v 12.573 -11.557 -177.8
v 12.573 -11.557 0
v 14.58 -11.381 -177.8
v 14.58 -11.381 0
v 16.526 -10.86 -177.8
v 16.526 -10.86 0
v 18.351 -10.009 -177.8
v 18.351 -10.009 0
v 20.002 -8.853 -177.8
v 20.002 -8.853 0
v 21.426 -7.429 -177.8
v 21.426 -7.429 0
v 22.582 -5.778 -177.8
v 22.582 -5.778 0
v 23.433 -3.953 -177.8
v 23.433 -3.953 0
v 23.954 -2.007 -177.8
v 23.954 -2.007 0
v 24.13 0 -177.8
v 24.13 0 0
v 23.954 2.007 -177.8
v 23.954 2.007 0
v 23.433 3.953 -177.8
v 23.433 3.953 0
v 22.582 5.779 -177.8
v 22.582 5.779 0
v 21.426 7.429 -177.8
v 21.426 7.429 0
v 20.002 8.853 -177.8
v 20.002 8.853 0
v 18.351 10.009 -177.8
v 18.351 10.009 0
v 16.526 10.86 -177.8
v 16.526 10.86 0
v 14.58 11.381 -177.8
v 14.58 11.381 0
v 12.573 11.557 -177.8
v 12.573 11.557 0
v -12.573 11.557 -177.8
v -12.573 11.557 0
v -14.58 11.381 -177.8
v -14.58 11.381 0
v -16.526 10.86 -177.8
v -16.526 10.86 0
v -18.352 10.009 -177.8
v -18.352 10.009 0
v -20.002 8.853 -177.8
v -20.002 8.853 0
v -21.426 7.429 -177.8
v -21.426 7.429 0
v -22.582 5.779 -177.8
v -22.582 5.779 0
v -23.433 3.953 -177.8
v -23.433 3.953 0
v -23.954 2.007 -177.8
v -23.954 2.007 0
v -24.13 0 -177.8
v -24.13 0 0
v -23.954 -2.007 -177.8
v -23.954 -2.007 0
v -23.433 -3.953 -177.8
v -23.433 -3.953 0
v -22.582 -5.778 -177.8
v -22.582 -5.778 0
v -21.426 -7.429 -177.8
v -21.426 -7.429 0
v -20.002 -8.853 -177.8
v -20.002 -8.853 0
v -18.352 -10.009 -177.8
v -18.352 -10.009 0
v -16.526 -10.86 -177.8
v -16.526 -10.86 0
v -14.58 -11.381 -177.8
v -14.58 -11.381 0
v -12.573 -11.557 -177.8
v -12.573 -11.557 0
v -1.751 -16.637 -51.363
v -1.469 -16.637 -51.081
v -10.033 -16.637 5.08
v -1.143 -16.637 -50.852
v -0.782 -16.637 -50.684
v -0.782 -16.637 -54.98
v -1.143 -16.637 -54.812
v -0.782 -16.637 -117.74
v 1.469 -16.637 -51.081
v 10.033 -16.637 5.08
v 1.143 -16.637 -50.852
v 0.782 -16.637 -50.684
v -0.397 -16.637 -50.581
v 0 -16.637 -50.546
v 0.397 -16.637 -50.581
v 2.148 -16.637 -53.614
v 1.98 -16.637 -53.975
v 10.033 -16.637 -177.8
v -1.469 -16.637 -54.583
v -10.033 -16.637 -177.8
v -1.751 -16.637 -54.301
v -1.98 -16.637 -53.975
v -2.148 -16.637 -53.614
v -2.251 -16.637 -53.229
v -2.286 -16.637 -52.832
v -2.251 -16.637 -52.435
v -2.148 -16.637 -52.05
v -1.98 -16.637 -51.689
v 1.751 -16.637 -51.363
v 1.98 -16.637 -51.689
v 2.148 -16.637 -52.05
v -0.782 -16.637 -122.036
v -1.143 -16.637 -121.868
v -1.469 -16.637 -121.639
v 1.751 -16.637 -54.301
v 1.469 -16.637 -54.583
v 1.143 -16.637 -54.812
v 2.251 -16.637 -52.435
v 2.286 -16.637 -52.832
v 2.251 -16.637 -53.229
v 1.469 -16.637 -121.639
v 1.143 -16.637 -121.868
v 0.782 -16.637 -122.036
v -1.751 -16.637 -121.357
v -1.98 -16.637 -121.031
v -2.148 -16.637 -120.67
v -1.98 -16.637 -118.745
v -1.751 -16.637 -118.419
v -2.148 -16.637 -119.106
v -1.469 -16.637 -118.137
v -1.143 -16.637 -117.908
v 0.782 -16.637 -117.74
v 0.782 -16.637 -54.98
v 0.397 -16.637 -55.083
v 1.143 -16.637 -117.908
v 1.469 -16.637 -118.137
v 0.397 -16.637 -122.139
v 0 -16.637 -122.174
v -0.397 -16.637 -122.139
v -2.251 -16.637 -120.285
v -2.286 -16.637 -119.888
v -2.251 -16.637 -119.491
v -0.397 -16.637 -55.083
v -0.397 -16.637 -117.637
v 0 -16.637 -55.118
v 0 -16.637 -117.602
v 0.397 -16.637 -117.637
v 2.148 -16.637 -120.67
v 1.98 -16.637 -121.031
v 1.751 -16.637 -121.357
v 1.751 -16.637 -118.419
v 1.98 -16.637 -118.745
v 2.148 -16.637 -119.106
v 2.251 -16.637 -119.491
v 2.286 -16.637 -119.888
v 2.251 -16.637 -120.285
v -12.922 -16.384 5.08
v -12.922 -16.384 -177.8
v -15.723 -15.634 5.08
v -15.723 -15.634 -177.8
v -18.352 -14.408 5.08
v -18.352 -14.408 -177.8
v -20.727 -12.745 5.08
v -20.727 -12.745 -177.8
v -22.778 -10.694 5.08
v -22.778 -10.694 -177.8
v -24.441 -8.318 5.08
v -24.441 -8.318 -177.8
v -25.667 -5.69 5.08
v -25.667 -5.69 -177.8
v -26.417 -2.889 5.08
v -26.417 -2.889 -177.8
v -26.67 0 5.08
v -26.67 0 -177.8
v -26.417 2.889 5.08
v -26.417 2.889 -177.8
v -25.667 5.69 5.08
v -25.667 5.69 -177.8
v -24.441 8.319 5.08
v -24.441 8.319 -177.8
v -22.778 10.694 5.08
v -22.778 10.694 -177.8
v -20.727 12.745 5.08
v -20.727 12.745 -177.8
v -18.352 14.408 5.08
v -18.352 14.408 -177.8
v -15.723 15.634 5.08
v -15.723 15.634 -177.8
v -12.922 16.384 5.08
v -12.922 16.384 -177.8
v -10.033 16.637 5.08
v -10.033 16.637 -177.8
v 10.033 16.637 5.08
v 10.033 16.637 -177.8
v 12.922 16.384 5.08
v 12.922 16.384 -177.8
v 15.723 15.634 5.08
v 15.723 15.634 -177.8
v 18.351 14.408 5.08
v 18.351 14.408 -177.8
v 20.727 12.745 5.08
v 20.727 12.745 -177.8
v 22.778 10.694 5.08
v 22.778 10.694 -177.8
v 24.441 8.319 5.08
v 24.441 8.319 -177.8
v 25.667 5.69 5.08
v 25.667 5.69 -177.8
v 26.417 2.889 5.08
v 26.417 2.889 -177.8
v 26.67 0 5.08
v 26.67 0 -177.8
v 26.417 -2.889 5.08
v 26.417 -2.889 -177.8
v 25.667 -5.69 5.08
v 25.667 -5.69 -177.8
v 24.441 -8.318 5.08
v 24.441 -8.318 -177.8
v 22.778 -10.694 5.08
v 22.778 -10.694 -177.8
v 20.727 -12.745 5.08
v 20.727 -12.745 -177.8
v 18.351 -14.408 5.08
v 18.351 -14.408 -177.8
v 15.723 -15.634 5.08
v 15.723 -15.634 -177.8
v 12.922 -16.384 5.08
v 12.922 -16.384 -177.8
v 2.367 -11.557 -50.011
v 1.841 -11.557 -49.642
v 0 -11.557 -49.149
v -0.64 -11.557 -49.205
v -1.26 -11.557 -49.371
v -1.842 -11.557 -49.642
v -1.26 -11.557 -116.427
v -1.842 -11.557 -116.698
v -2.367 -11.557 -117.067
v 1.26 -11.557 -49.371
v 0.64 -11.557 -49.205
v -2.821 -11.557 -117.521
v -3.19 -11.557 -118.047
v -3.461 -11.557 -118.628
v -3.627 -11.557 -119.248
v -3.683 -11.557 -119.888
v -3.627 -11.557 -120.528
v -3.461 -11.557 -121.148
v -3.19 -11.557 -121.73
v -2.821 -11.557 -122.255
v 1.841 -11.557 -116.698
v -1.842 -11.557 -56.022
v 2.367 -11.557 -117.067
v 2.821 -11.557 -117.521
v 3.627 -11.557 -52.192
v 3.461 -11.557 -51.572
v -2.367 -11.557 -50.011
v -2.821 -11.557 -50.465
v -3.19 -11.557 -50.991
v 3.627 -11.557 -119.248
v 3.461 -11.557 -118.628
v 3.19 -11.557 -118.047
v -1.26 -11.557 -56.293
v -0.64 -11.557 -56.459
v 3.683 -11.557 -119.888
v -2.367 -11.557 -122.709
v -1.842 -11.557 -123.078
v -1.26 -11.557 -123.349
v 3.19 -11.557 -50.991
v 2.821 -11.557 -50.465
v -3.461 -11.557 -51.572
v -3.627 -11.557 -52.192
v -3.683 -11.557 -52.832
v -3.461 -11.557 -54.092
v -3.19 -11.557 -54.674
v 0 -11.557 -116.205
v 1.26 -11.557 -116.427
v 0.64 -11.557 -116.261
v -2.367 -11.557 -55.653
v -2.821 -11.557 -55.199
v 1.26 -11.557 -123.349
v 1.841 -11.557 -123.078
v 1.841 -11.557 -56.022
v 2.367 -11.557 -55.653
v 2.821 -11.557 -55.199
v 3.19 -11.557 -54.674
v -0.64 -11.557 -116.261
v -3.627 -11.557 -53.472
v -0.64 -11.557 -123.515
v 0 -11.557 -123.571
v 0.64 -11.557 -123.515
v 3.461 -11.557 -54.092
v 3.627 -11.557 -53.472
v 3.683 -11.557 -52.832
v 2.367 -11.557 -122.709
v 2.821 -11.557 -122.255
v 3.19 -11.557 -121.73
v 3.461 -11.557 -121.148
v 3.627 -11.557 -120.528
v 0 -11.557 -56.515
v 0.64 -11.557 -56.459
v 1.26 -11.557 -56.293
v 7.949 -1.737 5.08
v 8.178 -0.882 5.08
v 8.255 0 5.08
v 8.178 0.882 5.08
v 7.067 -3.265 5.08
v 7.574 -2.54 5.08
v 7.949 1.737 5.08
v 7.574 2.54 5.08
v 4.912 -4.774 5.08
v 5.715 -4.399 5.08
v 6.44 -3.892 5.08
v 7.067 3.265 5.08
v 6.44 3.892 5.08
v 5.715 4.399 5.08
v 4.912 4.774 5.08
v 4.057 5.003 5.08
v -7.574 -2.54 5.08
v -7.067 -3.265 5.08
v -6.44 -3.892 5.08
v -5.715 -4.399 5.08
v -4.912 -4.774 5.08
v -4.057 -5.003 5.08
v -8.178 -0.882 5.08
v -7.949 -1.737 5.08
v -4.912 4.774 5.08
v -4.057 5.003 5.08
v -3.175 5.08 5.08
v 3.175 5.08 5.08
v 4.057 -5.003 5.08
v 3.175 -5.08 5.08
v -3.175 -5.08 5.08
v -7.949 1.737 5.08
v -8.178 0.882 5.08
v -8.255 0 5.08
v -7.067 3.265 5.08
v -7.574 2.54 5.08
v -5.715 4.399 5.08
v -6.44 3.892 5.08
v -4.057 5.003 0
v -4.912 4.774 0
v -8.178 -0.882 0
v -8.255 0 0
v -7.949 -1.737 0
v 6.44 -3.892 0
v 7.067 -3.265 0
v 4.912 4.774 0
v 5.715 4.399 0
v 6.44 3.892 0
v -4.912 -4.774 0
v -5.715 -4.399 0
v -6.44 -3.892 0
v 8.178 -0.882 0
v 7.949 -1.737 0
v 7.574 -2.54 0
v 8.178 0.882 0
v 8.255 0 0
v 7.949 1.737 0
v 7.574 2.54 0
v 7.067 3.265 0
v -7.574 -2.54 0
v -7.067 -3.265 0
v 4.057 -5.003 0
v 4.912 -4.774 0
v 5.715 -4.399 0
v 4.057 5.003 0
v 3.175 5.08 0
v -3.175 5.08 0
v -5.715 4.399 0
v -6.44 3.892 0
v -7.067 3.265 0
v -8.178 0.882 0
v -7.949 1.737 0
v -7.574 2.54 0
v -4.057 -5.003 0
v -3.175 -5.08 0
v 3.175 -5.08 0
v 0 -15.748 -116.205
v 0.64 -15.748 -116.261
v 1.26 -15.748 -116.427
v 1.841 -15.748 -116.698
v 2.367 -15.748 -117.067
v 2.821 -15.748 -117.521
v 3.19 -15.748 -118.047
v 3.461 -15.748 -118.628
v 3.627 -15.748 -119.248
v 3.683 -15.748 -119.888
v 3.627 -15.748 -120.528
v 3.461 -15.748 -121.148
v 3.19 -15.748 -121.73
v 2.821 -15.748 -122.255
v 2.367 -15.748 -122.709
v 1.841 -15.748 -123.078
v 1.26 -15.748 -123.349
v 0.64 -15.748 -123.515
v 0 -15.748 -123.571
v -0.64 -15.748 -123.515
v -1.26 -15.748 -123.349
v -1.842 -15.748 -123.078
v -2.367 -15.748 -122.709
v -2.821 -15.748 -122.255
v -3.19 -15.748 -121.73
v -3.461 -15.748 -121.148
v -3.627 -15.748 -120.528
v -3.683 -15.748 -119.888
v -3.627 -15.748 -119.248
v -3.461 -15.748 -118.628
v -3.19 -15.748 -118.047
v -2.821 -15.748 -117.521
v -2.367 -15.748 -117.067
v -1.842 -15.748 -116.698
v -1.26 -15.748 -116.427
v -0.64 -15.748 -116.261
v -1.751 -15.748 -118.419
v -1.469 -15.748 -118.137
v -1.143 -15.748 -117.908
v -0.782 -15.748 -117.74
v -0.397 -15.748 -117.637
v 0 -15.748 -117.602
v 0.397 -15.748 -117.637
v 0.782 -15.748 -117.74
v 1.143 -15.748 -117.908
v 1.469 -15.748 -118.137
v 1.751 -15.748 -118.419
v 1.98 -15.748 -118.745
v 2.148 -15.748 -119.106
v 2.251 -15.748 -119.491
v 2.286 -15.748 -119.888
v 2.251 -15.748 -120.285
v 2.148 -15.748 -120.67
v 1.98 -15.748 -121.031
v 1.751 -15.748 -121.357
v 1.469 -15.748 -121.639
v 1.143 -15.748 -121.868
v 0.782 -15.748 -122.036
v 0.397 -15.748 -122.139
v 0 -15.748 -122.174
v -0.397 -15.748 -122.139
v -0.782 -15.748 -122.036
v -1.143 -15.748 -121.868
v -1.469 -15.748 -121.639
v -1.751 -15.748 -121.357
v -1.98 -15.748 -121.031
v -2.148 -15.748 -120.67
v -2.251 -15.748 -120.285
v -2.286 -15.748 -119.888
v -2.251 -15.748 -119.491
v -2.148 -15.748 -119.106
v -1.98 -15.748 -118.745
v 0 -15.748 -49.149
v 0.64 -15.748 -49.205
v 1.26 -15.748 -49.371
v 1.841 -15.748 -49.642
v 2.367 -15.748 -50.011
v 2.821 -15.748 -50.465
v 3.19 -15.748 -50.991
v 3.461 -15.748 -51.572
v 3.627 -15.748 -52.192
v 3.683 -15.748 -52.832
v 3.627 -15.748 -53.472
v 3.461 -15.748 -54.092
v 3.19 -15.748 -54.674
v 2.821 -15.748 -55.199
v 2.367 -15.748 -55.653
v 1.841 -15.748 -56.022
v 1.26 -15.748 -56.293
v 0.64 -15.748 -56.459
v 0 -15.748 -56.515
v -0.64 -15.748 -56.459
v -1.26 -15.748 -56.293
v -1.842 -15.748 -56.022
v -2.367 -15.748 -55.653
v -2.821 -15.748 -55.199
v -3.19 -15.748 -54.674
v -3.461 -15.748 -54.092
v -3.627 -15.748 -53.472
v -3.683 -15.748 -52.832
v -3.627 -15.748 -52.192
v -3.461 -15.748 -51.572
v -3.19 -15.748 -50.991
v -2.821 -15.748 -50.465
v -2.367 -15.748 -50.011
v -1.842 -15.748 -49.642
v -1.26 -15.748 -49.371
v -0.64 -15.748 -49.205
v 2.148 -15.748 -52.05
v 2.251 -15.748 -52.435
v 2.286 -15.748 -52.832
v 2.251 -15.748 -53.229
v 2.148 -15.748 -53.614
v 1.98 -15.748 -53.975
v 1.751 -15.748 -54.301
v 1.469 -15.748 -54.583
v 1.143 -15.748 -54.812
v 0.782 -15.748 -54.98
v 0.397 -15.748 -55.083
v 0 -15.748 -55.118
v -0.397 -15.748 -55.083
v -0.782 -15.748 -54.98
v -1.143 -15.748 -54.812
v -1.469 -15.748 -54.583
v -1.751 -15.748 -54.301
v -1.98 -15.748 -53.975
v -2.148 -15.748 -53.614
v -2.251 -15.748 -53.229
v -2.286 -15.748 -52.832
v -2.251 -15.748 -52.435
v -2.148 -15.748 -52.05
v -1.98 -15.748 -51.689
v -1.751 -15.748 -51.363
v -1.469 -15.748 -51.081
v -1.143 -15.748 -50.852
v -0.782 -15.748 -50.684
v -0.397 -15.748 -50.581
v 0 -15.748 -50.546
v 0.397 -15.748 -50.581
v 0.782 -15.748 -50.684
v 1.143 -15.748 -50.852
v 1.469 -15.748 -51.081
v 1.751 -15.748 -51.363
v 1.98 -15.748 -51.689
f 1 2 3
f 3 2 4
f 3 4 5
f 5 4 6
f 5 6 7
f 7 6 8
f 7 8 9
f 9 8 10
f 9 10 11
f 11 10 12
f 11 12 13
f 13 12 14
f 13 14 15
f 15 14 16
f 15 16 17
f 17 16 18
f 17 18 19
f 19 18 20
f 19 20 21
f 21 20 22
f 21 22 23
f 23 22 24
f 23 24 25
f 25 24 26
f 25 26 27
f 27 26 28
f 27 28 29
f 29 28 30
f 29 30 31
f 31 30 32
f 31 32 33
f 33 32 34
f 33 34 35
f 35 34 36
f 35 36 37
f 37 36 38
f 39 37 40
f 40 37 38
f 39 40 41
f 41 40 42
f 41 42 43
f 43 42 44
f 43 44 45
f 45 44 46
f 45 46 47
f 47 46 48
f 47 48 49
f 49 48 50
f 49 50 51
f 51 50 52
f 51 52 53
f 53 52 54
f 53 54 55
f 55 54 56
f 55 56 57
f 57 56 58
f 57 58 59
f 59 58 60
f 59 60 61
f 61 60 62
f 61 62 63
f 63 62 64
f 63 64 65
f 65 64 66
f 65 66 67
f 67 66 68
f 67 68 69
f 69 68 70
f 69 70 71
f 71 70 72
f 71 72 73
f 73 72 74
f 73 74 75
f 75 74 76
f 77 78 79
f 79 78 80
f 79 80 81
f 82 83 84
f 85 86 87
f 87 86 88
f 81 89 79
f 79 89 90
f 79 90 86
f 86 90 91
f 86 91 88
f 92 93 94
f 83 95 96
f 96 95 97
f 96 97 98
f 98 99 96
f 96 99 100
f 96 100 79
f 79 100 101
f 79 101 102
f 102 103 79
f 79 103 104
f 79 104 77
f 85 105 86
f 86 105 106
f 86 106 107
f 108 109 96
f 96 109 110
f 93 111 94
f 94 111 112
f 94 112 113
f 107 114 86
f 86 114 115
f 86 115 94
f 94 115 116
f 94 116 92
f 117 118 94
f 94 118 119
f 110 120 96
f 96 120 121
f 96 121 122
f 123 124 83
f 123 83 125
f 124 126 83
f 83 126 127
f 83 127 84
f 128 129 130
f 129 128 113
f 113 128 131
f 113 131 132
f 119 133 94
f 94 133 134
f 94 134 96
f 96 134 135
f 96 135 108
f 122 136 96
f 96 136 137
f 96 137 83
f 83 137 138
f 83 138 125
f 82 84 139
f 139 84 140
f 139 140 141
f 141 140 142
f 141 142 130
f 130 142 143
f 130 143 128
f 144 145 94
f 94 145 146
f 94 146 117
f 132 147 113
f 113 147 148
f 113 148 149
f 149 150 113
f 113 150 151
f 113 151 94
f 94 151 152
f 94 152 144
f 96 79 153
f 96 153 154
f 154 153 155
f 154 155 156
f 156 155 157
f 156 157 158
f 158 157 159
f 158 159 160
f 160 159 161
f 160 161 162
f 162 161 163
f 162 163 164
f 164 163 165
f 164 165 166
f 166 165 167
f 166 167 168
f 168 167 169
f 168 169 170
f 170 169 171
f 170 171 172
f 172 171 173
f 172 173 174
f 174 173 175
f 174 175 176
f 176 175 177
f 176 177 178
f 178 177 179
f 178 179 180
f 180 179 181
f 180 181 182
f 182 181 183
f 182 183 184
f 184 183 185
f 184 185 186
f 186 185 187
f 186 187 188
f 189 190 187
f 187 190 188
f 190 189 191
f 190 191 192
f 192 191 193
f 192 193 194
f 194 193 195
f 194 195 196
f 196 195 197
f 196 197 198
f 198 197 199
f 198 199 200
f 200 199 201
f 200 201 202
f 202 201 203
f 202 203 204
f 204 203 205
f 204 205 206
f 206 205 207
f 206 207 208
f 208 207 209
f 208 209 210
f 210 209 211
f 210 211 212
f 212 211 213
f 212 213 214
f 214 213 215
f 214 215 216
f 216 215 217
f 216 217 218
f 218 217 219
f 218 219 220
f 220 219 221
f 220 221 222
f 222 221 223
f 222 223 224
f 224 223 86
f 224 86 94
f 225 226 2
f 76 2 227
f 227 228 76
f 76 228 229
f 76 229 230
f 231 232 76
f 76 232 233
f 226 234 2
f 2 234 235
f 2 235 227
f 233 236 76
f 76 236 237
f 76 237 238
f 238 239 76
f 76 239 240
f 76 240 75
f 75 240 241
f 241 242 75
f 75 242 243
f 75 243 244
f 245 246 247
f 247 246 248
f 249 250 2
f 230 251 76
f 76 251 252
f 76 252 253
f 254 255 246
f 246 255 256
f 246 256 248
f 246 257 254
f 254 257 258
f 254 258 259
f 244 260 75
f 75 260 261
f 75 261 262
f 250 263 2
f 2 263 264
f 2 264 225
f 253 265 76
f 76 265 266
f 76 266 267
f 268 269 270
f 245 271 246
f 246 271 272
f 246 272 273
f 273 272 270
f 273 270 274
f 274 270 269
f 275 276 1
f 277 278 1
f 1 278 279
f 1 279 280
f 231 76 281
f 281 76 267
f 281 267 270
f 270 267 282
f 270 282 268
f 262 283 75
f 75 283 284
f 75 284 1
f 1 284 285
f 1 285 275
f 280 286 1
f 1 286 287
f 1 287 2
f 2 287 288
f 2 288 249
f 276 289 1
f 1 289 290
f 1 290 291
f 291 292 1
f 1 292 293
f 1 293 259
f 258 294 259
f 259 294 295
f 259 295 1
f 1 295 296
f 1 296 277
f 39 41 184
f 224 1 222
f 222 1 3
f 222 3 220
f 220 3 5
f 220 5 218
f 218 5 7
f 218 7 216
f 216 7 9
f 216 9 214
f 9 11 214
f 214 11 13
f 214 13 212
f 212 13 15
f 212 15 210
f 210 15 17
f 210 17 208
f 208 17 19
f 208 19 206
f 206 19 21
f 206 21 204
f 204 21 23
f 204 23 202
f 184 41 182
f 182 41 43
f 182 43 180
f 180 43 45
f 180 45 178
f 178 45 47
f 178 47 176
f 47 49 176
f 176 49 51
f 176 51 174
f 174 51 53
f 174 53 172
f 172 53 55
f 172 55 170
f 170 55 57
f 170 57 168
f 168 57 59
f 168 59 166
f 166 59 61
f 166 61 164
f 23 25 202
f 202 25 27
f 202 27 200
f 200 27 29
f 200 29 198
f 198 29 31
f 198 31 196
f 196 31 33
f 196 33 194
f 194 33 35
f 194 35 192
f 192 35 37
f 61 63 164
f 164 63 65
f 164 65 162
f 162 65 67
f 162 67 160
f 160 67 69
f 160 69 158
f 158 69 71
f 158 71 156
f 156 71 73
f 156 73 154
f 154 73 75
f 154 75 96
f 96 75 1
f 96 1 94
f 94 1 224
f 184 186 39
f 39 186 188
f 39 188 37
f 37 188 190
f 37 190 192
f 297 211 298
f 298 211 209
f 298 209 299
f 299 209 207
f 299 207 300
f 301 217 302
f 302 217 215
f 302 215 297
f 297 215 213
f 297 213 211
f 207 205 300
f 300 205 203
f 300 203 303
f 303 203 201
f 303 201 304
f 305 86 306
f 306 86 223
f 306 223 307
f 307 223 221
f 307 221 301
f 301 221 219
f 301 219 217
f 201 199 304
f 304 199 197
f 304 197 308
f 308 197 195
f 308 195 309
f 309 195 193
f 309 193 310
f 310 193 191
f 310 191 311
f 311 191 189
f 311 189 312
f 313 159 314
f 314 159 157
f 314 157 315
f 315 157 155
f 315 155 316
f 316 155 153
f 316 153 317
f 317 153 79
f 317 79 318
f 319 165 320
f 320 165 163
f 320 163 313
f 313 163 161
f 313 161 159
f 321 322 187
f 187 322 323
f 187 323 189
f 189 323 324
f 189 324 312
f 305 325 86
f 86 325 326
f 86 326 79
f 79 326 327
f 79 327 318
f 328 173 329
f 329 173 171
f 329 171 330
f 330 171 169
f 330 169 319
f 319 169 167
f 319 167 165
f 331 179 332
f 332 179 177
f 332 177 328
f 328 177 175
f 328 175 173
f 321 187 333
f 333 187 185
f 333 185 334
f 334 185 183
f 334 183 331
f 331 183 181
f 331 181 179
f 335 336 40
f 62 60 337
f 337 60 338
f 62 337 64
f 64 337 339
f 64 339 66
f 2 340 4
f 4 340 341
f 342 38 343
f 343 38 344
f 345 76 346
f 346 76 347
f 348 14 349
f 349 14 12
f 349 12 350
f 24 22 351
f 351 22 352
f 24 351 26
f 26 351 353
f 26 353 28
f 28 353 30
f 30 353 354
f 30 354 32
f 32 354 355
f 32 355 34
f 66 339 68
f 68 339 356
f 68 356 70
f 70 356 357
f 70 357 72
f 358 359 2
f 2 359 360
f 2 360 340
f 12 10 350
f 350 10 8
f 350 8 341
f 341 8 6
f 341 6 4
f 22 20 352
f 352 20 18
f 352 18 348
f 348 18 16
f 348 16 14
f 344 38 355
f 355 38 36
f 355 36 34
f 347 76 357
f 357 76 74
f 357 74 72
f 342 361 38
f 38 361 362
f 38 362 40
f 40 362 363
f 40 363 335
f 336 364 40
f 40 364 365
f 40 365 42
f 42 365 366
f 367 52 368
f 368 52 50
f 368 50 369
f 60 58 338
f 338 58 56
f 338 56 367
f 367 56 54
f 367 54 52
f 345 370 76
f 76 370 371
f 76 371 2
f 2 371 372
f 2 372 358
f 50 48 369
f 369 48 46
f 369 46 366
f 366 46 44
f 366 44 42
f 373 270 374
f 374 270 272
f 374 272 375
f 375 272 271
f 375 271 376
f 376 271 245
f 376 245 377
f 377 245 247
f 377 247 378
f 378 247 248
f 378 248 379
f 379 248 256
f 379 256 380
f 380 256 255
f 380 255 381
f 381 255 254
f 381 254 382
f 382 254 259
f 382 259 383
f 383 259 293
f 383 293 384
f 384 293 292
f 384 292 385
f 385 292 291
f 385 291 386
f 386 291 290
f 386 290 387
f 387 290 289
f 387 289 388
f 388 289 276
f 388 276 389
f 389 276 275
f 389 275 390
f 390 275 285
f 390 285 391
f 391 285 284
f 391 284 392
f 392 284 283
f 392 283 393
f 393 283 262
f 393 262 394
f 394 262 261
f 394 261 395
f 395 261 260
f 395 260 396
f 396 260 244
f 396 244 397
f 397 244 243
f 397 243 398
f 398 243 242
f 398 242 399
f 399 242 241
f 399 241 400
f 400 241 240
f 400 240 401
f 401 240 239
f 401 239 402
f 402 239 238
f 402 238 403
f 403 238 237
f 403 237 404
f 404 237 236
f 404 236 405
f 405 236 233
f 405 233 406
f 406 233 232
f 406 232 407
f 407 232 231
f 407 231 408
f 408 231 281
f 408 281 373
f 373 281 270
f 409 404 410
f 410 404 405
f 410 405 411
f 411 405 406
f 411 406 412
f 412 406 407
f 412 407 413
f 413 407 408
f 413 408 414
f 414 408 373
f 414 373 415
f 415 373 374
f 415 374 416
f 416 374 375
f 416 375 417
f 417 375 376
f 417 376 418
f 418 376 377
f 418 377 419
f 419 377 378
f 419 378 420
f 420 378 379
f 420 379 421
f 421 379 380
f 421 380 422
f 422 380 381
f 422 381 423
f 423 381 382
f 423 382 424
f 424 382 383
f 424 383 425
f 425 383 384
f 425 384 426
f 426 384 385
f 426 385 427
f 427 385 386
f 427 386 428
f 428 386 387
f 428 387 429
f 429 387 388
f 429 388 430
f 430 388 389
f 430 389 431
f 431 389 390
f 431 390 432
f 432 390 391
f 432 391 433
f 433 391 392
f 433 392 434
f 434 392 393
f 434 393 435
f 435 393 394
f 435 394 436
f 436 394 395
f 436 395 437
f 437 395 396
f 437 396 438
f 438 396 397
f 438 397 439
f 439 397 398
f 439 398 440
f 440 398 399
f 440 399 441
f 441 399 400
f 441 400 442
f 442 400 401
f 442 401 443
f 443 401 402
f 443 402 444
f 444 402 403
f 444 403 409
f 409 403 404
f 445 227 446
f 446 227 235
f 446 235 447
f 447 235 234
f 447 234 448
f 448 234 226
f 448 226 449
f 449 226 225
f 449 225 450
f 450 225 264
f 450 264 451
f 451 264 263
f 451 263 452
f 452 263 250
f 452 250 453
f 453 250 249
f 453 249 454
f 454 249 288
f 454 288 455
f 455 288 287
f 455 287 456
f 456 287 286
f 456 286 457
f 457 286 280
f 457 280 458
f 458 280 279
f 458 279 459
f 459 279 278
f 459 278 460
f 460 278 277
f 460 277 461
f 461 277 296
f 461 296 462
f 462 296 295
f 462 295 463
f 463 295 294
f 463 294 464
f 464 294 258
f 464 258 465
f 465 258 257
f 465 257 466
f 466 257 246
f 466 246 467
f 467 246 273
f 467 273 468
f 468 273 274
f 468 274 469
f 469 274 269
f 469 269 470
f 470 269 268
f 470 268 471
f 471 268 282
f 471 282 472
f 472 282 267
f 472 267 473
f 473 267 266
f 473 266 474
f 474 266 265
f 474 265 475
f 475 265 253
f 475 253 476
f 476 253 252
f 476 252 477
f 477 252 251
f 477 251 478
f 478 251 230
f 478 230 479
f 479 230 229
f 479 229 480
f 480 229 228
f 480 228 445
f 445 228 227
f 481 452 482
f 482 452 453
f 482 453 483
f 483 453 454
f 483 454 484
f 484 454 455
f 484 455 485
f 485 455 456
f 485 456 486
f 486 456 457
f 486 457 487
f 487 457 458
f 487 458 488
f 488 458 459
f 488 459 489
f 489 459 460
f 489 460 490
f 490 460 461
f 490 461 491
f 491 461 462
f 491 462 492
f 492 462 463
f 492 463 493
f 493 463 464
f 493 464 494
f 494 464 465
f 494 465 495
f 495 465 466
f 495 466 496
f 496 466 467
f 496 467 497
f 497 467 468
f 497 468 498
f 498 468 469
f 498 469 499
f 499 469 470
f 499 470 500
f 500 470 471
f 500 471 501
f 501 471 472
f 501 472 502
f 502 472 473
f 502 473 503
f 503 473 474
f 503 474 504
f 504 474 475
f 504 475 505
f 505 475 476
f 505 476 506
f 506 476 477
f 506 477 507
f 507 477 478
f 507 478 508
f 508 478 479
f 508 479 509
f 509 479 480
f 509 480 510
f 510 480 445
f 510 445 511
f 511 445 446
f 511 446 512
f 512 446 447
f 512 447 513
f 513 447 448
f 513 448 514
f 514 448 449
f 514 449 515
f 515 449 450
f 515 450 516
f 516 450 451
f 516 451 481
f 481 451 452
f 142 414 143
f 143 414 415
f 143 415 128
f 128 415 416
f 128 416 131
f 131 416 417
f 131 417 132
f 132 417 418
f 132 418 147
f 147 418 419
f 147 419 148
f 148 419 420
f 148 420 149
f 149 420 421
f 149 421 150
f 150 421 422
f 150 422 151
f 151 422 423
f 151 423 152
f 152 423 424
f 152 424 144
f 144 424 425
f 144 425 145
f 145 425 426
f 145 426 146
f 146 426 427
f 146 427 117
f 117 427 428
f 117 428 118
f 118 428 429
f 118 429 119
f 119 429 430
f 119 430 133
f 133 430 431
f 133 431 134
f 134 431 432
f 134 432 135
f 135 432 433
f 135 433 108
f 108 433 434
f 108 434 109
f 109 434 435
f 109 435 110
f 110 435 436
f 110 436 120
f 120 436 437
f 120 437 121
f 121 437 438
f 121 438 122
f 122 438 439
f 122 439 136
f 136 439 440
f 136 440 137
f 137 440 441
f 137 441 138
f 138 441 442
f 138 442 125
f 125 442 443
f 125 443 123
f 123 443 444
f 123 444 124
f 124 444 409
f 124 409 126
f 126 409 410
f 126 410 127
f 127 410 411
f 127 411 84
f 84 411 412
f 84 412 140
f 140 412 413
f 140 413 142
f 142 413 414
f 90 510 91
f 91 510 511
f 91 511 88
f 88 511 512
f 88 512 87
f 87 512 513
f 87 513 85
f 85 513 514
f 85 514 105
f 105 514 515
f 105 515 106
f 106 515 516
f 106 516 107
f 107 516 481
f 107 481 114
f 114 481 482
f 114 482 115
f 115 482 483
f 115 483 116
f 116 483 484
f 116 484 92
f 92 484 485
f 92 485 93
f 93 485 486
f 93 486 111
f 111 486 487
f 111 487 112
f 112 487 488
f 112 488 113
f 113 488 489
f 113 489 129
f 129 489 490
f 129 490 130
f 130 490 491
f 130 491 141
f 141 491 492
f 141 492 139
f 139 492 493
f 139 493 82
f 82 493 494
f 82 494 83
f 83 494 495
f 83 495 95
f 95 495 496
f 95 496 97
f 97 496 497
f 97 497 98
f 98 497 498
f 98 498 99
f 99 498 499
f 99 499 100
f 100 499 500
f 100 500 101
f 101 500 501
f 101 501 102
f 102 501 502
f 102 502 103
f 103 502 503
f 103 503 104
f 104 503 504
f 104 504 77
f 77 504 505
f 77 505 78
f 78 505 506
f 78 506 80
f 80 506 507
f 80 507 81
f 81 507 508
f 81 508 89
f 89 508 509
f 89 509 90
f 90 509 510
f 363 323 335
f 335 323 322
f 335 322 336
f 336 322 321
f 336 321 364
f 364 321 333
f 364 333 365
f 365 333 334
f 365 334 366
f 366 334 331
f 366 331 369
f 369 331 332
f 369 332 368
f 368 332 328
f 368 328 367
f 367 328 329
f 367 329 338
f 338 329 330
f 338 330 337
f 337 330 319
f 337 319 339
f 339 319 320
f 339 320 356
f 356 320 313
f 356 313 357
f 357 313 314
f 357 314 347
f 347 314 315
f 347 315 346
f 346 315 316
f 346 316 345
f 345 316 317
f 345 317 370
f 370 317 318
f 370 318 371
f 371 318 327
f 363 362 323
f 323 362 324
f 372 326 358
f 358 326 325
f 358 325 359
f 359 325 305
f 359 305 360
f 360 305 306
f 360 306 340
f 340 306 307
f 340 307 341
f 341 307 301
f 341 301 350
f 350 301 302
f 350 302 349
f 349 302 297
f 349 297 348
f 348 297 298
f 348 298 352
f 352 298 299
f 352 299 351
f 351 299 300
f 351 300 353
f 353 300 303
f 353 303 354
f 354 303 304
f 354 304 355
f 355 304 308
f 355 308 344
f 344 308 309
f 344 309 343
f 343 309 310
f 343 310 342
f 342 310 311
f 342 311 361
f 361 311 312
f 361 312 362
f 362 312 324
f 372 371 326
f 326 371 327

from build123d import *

# Parameters (mm, degrees)
BOSS_EXTRUDE1_DEPTH = 177.8
BOSS_EXTRUDE2_DEPTH = 5.08
SKETCH5_R           = 3.683
CUT_EXTRUDE2_DEPTH  = 4.191
SKETCH6_R           = 2.286
CUT_EXTRUDE3_DEPTH  = 6.731
CUT_EXTRUDE5_DEPTH  = 5.08


with BuildPart() as part:
    # Sketch1 → Boss-Extrude1 (new body)
    with BuildSketch(Plane.XY):
        with BuildLine():
            ThreePointArc((-24.13, 0), (-20.74503307, 8.17203307), (-12.573, 11.557))
            Line((-12.573, 11.557), (12.573, 11.557))
            ThreePointArc((12.573, 11.557), (20.74503307, 8.17203307), (24.13, 0))
            Line((24.13, 0), (26.67, 0))
            ThreePointArc((26.67, 0), (21.797135519, 11.764135519), (10.033, 16.637))
            Line((10.033, 16.637), (-10.033, 16.637))
            ThreePointArc((-10.033, 16.637), (-21.797135519, 11.764135519), (-26.67, 0))
            Line((-26.67, 0), (-24.13, 0))
        make_face()
        with BuildLine():
            ThreePointArc((-12.573, -11.557), (-20.74503307, -8.17203307), (-24.13, 0))
            Line((-24.13, 0), (-26.67, 0))
            ThreePointArc((-26.67, 0), (-21.797135519, -11.764135519), (-10.033, -16.637))
            Line((-10.033, -16.637), (10.033, -16.637))
            ThreePointArc((10.033, -16.637), (21.797135519, -11.764135519), (26.67, 0))
            Line((26.67, 0), (24.13, 0))
            ThreePointArc((24.13, 0), (20.74503307, -8.17203307), (12.573, -11.557))
            Line((12.573, -11.557), (-12.573, -11.557))
        make_face()
    extrude(amount=-BOSS_EXTRUDE1_DEPTH)

    # Sketch3 → Boss-Extrude2 (add)
    with BuildSketch(Plane.XY):
        with BuildLine():
            Line((-10.033, 16.637), (10.033, 16.637))
            ThreePointArc((10.033, 16.637), (26.67, 0), (10.033, -16.637))
            Line((10.033, -16.637), (-10.033, -16.637))
            ThreePointArc((-10.033, -16.637), (-26.67, 0), (-10.033, 16.637))
        make_face()
    extrude(amount=BOSS_EXTRUDE2_DEPTH)

    # Sketch5 → Cut-Extrude2 (cut)
    with BuildSketch(Plane(origin=(0, -11.557, 0), x_dir=(1, 0, 0), z_dir=(0, 1, 0))):
        with Locations((0, 119.888)):
            Circle(SKETCH5_R)
        with Locations((0, 52.832)):
            Circle(SKETCH5_R)
    extrude(amount=-CUT_EXTRUDE2_DEPTH, mode=Mode.SUBTRACT)

    # Sketch6 → Cut-Extrude3 (cut)
    with BuildSketch(Plane(origin=(0, -11.557, 0), x_dir=(1, 0, 0), z_dir=(0, 1, 0))):
        with Locations((0, 119.888)):
            Circle(SKETCH6_R)
        with Locations((0, 52.832)):
            Circle(SKETCH6_R)
    extrude(amount=-CUT_EXTRUDE3_DEPTH, mode=Mode.SUBTRACT)

    # Sketch7 → Cut-Extrude5 (cut)
    with BuildSketch(Plane.XY.offset(5.08)):
        with BuildLine():
            Line((-3.175, 5.08), (3.175, 5.08))
            ThreePointArc((3.175, 5.08), (8.255, 0), (3.175, -5.08))
            Line((3.175, -5.08), (-3.175, -5.08))
            ThreePointArc((-3.175, -5.08), (-8.255, 0), (-3.175, 5.08))
        make_face()
    extrude(amount=-CUT_EXTRUDE5_DEPTH, mode=Mode.SUBTRACT)


solid = part.part
